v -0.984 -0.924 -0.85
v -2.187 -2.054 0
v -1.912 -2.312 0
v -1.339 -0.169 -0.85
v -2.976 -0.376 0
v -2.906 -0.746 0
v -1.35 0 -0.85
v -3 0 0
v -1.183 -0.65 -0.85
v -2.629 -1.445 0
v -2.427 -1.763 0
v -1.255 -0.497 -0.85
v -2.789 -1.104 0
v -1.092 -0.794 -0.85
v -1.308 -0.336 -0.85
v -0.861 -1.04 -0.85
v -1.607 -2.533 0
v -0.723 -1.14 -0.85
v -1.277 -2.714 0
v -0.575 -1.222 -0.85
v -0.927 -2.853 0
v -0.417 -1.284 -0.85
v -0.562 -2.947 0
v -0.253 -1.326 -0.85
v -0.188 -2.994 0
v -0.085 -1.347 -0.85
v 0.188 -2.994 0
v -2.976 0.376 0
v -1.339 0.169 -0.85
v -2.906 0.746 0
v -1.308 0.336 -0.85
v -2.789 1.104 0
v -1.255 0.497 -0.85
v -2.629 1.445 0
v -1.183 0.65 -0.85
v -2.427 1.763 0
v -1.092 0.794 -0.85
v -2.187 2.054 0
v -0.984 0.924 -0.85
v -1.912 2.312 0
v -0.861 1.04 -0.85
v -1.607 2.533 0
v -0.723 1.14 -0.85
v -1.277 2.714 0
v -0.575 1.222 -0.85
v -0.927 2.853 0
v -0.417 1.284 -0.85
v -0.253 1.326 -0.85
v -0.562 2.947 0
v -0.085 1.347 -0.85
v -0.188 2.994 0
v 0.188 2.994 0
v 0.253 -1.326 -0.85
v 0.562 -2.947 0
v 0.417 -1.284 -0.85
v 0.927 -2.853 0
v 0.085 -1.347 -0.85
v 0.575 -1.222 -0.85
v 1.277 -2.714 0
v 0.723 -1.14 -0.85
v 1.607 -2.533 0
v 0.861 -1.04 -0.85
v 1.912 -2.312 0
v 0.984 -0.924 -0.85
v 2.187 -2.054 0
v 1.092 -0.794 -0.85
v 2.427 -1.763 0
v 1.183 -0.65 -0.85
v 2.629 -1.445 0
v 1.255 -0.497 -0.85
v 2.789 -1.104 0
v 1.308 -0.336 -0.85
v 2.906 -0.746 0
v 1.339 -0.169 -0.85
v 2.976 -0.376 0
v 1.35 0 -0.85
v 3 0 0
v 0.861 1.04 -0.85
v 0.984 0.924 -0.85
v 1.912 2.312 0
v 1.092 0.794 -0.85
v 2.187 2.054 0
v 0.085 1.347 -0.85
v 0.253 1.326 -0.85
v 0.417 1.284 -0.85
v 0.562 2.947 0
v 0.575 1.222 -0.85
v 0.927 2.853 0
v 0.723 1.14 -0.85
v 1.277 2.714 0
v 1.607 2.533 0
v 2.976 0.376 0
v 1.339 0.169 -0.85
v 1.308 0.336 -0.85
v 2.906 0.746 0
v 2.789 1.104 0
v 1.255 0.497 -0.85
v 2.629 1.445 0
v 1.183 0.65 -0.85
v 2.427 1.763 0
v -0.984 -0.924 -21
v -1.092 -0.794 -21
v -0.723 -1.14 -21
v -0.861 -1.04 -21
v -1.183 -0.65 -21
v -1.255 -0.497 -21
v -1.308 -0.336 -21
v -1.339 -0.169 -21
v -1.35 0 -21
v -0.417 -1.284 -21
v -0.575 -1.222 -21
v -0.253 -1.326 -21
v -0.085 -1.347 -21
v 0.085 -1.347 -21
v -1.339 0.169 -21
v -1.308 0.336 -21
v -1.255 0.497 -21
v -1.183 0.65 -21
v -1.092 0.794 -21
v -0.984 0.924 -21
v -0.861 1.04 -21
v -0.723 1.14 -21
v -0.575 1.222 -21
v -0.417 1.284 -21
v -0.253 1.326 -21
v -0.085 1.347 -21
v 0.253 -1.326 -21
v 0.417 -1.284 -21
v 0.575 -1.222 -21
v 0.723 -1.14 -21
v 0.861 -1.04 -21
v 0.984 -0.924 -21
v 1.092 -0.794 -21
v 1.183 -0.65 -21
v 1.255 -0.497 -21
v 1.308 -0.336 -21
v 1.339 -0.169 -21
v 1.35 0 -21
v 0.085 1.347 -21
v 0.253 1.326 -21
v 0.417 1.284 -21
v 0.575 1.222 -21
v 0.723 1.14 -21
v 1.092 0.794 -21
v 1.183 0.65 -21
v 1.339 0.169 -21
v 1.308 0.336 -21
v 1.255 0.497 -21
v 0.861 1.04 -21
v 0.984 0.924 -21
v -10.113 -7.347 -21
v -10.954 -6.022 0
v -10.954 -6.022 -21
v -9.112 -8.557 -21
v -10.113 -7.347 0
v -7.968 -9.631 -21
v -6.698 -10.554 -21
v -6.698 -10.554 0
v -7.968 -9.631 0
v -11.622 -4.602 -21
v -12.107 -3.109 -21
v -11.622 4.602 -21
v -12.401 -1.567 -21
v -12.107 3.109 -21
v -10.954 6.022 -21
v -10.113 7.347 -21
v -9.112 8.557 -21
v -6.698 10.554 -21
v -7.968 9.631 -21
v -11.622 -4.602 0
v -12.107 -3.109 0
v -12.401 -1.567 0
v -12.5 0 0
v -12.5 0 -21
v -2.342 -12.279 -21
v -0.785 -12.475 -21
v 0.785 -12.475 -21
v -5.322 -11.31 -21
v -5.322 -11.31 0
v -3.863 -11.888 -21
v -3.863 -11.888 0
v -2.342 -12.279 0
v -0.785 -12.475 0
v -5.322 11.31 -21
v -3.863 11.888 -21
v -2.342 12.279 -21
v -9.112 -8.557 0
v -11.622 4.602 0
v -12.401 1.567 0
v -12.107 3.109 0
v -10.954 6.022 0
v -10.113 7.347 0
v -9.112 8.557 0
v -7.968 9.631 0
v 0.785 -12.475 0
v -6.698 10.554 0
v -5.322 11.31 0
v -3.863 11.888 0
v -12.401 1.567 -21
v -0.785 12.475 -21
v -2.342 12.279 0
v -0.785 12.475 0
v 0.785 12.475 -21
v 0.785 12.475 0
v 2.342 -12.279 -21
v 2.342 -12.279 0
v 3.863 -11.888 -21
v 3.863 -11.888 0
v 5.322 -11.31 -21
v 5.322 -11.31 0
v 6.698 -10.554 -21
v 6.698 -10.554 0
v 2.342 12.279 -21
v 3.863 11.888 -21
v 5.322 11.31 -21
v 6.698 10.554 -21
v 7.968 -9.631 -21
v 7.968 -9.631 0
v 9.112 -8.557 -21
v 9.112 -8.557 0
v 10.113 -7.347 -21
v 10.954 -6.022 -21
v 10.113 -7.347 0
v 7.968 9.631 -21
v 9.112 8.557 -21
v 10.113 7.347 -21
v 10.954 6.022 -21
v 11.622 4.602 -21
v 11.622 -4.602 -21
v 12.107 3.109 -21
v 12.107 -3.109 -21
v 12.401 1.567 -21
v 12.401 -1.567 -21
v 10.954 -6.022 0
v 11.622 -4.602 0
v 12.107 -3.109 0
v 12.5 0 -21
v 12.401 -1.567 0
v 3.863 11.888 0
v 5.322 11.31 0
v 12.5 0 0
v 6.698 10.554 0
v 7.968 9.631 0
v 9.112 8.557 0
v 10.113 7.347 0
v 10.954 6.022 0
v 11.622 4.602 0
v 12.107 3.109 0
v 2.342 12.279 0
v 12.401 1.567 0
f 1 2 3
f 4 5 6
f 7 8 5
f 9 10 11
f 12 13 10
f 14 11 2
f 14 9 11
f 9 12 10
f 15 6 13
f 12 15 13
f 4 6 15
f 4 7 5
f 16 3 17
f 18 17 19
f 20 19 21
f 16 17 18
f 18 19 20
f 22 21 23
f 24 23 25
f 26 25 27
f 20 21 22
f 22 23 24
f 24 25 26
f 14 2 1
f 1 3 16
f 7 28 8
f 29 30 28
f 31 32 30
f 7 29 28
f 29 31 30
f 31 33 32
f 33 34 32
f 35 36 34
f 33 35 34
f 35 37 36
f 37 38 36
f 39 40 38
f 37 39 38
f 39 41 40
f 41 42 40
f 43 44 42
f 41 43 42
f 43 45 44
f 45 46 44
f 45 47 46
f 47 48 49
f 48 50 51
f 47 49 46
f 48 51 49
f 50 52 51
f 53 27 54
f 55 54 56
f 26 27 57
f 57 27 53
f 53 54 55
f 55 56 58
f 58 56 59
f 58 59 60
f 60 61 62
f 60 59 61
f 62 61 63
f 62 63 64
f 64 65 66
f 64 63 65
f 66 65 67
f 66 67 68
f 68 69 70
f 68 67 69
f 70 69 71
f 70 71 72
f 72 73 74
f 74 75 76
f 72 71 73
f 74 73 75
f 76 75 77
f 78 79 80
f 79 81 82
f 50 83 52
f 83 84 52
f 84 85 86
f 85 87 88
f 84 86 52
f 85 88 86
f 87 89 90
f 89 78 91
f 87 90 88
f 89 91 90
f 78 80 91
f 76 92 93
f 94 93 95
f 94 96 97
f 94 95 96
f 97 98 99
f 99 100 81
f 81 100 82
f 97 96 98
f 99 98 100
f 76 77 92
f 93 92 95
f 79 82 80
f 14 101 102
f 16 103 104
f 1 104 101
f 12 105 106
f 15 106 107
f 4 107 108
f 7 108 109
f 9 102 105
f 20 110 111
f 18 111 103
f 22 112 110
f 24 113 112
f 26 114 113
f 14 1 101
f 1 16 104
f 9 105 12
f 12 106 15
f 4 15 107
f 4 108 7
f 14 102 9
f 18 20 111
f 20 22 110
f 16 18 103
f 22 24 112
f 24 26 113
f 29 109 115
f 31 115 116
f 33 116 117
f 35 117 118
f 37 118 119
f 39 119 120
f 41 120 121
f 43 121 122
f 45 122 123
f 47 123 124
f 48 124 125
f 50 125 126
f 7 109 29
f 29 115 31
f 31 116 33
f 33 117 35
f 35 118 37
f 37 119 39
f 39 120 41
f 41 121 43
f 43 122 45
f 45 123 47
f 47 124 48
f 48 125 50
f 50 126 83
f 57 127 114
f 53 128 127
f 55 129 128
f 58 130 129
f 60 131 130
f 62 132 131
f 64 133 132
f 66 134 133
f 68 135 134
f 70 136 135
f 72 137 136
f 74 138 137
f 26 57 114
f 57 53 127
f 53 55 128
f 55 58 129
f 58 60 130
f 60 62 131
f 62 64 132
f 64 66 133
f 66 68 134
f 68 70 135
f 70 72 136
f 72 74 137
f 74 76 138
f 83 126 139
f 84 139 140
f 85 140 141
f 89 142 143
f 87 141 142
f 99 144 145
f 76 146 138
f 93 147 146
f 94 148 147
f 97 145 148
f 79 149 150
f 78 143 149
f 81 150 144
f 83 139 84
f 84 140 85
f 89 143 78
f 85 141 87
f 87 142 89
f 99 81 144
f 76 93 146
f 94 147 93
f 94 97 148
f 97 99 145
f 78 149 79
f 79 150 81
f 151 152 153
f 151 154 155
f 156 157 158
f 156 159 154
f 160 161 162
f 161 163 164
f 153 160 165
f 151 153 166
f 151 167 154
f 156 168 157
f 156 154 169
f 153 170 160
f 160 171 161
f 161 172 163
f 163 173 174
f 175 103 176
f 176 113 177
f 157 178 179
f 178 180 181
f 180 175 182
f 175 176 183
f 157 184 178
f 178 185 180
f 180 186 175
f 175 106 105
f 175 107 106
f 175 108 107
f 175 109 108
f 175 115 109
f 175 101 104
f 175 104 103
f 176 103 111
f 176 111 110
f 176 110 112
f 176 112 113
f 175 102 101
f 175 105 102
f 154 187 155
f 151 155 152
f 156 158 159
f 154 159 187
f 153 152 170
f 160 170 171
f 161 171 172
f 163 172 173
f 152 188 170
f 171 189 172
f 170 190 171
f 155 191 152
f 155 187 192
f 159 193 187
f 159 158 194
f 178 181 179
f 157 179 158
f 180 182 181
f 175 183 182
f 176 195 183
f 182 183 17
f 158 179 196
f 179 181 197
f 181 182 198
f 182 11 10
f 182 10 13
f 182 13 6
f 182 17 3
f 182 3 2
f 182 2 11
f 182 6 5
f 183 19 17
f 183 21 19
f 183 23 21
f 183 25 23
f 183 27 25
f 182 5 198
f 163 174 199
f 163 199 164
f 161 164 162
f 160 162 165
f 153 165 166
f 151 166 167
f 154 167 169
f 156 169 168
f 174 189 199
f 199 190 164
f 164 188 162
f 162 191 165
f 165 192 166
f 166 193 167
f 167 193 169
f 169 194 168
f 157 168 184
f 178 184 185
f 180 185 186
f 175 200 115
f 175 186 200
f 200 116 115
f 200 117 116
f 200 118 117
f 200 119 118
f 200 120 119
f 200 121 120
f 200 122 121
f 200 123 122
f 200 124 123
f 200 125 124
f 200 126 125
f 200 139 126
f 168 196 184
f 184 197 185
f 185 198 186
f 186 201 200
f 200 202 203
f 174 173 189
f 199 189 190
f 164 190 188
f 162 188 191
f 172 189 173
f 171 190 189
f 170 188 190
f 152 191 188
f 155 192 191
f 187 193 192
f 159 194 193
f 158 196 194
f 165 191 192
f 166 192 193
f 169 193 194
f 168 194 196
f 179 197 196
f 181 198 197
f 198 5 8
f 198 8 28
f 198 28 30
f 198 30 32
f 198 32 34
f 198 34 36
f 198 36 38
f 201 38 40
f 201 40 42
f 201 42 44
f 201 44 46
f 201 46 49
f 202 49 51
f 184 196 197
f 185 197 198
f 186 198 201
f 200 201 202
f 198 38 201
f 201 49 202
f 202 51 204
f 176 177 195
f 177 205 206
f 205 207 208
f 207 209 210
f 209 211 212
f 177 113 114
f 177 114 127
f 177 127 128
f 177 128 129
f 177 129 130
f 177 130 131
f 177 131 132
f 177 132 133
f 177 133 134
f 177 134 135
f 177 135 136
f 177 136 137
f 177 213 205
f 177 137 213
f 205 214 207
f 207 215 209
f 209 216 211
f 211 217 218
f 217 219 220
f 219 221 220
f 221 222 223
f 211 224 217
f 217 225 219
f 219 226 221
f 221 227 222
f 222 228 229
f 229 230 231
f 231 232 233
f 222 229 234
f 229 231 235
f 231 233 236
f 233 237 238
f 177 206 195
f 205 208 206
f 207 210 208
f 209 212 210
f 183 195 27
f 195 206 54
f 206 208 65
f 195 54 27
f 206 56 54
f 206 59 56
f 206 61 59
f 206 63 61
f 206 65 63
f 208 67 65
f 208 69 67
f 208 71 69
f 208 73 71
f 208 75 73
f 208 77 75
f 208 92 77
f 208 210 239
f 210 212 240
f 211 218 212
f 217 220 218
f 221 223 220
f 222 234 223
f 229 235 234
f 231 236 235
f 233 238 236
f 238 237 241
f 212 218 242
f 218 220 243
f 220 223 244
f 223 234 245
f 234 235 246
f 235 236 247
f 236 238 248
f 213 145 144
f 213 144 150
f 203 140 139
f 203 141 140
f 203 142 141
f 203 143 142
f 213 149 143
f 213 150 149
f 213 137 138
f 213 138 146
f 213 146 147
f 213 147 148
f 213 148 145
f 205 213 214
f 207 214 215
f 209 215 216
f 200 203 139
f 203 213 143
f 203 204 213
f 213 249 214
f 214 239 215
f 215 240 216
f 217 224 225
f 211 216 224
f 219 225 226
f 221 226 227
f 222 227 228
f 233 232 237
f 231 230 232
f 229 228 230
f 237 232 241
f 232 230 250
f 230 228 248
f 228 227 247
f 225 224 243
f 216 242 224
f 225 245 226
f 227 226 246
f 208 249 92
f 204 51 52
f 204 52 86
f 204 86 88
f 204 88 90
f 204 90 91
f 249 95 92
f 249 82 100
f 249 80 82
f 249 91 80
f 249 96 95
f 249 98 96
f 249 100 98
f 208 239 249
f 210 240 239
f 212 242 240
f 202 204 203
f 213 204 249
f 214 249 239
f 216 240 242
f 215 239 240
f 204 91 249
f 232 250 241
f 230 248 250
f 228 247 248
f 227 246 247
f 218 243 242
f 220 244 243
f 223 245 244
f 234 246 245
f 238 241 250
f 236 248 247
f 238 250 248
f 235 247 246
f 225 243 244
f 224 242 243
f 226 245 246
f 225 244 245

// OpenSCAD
$fn = 50;

difference() {
	union() {
		translate(v = [0, 0, -21.0]) {
			cylinder(h = 21, r = 12.5);
		}
	}
	union() {
		translate(v = [0, 0, 0]) {
			rotate(a = [0, 0, 0]) {
				difference() {
					union() {
						translate(v = [0, 0, -24.0]) {
							cylinder(h = 24, r = 1.0);
						}
						translate(v = [0, 0, -0.85]) {
							cylinder(h = 0.85, r1 = 1.35, r2 = 3.0);
						}
						translate(v = [0, 0, -24.0]) {
							cylinder(h = 24, r = 1.35);
						}
						translate(v = [0, 0, -24.0]) {
							cylinder(h = 24, r = 1.0);
						}
					}
					union();
				}
			}
		}
	}
}
